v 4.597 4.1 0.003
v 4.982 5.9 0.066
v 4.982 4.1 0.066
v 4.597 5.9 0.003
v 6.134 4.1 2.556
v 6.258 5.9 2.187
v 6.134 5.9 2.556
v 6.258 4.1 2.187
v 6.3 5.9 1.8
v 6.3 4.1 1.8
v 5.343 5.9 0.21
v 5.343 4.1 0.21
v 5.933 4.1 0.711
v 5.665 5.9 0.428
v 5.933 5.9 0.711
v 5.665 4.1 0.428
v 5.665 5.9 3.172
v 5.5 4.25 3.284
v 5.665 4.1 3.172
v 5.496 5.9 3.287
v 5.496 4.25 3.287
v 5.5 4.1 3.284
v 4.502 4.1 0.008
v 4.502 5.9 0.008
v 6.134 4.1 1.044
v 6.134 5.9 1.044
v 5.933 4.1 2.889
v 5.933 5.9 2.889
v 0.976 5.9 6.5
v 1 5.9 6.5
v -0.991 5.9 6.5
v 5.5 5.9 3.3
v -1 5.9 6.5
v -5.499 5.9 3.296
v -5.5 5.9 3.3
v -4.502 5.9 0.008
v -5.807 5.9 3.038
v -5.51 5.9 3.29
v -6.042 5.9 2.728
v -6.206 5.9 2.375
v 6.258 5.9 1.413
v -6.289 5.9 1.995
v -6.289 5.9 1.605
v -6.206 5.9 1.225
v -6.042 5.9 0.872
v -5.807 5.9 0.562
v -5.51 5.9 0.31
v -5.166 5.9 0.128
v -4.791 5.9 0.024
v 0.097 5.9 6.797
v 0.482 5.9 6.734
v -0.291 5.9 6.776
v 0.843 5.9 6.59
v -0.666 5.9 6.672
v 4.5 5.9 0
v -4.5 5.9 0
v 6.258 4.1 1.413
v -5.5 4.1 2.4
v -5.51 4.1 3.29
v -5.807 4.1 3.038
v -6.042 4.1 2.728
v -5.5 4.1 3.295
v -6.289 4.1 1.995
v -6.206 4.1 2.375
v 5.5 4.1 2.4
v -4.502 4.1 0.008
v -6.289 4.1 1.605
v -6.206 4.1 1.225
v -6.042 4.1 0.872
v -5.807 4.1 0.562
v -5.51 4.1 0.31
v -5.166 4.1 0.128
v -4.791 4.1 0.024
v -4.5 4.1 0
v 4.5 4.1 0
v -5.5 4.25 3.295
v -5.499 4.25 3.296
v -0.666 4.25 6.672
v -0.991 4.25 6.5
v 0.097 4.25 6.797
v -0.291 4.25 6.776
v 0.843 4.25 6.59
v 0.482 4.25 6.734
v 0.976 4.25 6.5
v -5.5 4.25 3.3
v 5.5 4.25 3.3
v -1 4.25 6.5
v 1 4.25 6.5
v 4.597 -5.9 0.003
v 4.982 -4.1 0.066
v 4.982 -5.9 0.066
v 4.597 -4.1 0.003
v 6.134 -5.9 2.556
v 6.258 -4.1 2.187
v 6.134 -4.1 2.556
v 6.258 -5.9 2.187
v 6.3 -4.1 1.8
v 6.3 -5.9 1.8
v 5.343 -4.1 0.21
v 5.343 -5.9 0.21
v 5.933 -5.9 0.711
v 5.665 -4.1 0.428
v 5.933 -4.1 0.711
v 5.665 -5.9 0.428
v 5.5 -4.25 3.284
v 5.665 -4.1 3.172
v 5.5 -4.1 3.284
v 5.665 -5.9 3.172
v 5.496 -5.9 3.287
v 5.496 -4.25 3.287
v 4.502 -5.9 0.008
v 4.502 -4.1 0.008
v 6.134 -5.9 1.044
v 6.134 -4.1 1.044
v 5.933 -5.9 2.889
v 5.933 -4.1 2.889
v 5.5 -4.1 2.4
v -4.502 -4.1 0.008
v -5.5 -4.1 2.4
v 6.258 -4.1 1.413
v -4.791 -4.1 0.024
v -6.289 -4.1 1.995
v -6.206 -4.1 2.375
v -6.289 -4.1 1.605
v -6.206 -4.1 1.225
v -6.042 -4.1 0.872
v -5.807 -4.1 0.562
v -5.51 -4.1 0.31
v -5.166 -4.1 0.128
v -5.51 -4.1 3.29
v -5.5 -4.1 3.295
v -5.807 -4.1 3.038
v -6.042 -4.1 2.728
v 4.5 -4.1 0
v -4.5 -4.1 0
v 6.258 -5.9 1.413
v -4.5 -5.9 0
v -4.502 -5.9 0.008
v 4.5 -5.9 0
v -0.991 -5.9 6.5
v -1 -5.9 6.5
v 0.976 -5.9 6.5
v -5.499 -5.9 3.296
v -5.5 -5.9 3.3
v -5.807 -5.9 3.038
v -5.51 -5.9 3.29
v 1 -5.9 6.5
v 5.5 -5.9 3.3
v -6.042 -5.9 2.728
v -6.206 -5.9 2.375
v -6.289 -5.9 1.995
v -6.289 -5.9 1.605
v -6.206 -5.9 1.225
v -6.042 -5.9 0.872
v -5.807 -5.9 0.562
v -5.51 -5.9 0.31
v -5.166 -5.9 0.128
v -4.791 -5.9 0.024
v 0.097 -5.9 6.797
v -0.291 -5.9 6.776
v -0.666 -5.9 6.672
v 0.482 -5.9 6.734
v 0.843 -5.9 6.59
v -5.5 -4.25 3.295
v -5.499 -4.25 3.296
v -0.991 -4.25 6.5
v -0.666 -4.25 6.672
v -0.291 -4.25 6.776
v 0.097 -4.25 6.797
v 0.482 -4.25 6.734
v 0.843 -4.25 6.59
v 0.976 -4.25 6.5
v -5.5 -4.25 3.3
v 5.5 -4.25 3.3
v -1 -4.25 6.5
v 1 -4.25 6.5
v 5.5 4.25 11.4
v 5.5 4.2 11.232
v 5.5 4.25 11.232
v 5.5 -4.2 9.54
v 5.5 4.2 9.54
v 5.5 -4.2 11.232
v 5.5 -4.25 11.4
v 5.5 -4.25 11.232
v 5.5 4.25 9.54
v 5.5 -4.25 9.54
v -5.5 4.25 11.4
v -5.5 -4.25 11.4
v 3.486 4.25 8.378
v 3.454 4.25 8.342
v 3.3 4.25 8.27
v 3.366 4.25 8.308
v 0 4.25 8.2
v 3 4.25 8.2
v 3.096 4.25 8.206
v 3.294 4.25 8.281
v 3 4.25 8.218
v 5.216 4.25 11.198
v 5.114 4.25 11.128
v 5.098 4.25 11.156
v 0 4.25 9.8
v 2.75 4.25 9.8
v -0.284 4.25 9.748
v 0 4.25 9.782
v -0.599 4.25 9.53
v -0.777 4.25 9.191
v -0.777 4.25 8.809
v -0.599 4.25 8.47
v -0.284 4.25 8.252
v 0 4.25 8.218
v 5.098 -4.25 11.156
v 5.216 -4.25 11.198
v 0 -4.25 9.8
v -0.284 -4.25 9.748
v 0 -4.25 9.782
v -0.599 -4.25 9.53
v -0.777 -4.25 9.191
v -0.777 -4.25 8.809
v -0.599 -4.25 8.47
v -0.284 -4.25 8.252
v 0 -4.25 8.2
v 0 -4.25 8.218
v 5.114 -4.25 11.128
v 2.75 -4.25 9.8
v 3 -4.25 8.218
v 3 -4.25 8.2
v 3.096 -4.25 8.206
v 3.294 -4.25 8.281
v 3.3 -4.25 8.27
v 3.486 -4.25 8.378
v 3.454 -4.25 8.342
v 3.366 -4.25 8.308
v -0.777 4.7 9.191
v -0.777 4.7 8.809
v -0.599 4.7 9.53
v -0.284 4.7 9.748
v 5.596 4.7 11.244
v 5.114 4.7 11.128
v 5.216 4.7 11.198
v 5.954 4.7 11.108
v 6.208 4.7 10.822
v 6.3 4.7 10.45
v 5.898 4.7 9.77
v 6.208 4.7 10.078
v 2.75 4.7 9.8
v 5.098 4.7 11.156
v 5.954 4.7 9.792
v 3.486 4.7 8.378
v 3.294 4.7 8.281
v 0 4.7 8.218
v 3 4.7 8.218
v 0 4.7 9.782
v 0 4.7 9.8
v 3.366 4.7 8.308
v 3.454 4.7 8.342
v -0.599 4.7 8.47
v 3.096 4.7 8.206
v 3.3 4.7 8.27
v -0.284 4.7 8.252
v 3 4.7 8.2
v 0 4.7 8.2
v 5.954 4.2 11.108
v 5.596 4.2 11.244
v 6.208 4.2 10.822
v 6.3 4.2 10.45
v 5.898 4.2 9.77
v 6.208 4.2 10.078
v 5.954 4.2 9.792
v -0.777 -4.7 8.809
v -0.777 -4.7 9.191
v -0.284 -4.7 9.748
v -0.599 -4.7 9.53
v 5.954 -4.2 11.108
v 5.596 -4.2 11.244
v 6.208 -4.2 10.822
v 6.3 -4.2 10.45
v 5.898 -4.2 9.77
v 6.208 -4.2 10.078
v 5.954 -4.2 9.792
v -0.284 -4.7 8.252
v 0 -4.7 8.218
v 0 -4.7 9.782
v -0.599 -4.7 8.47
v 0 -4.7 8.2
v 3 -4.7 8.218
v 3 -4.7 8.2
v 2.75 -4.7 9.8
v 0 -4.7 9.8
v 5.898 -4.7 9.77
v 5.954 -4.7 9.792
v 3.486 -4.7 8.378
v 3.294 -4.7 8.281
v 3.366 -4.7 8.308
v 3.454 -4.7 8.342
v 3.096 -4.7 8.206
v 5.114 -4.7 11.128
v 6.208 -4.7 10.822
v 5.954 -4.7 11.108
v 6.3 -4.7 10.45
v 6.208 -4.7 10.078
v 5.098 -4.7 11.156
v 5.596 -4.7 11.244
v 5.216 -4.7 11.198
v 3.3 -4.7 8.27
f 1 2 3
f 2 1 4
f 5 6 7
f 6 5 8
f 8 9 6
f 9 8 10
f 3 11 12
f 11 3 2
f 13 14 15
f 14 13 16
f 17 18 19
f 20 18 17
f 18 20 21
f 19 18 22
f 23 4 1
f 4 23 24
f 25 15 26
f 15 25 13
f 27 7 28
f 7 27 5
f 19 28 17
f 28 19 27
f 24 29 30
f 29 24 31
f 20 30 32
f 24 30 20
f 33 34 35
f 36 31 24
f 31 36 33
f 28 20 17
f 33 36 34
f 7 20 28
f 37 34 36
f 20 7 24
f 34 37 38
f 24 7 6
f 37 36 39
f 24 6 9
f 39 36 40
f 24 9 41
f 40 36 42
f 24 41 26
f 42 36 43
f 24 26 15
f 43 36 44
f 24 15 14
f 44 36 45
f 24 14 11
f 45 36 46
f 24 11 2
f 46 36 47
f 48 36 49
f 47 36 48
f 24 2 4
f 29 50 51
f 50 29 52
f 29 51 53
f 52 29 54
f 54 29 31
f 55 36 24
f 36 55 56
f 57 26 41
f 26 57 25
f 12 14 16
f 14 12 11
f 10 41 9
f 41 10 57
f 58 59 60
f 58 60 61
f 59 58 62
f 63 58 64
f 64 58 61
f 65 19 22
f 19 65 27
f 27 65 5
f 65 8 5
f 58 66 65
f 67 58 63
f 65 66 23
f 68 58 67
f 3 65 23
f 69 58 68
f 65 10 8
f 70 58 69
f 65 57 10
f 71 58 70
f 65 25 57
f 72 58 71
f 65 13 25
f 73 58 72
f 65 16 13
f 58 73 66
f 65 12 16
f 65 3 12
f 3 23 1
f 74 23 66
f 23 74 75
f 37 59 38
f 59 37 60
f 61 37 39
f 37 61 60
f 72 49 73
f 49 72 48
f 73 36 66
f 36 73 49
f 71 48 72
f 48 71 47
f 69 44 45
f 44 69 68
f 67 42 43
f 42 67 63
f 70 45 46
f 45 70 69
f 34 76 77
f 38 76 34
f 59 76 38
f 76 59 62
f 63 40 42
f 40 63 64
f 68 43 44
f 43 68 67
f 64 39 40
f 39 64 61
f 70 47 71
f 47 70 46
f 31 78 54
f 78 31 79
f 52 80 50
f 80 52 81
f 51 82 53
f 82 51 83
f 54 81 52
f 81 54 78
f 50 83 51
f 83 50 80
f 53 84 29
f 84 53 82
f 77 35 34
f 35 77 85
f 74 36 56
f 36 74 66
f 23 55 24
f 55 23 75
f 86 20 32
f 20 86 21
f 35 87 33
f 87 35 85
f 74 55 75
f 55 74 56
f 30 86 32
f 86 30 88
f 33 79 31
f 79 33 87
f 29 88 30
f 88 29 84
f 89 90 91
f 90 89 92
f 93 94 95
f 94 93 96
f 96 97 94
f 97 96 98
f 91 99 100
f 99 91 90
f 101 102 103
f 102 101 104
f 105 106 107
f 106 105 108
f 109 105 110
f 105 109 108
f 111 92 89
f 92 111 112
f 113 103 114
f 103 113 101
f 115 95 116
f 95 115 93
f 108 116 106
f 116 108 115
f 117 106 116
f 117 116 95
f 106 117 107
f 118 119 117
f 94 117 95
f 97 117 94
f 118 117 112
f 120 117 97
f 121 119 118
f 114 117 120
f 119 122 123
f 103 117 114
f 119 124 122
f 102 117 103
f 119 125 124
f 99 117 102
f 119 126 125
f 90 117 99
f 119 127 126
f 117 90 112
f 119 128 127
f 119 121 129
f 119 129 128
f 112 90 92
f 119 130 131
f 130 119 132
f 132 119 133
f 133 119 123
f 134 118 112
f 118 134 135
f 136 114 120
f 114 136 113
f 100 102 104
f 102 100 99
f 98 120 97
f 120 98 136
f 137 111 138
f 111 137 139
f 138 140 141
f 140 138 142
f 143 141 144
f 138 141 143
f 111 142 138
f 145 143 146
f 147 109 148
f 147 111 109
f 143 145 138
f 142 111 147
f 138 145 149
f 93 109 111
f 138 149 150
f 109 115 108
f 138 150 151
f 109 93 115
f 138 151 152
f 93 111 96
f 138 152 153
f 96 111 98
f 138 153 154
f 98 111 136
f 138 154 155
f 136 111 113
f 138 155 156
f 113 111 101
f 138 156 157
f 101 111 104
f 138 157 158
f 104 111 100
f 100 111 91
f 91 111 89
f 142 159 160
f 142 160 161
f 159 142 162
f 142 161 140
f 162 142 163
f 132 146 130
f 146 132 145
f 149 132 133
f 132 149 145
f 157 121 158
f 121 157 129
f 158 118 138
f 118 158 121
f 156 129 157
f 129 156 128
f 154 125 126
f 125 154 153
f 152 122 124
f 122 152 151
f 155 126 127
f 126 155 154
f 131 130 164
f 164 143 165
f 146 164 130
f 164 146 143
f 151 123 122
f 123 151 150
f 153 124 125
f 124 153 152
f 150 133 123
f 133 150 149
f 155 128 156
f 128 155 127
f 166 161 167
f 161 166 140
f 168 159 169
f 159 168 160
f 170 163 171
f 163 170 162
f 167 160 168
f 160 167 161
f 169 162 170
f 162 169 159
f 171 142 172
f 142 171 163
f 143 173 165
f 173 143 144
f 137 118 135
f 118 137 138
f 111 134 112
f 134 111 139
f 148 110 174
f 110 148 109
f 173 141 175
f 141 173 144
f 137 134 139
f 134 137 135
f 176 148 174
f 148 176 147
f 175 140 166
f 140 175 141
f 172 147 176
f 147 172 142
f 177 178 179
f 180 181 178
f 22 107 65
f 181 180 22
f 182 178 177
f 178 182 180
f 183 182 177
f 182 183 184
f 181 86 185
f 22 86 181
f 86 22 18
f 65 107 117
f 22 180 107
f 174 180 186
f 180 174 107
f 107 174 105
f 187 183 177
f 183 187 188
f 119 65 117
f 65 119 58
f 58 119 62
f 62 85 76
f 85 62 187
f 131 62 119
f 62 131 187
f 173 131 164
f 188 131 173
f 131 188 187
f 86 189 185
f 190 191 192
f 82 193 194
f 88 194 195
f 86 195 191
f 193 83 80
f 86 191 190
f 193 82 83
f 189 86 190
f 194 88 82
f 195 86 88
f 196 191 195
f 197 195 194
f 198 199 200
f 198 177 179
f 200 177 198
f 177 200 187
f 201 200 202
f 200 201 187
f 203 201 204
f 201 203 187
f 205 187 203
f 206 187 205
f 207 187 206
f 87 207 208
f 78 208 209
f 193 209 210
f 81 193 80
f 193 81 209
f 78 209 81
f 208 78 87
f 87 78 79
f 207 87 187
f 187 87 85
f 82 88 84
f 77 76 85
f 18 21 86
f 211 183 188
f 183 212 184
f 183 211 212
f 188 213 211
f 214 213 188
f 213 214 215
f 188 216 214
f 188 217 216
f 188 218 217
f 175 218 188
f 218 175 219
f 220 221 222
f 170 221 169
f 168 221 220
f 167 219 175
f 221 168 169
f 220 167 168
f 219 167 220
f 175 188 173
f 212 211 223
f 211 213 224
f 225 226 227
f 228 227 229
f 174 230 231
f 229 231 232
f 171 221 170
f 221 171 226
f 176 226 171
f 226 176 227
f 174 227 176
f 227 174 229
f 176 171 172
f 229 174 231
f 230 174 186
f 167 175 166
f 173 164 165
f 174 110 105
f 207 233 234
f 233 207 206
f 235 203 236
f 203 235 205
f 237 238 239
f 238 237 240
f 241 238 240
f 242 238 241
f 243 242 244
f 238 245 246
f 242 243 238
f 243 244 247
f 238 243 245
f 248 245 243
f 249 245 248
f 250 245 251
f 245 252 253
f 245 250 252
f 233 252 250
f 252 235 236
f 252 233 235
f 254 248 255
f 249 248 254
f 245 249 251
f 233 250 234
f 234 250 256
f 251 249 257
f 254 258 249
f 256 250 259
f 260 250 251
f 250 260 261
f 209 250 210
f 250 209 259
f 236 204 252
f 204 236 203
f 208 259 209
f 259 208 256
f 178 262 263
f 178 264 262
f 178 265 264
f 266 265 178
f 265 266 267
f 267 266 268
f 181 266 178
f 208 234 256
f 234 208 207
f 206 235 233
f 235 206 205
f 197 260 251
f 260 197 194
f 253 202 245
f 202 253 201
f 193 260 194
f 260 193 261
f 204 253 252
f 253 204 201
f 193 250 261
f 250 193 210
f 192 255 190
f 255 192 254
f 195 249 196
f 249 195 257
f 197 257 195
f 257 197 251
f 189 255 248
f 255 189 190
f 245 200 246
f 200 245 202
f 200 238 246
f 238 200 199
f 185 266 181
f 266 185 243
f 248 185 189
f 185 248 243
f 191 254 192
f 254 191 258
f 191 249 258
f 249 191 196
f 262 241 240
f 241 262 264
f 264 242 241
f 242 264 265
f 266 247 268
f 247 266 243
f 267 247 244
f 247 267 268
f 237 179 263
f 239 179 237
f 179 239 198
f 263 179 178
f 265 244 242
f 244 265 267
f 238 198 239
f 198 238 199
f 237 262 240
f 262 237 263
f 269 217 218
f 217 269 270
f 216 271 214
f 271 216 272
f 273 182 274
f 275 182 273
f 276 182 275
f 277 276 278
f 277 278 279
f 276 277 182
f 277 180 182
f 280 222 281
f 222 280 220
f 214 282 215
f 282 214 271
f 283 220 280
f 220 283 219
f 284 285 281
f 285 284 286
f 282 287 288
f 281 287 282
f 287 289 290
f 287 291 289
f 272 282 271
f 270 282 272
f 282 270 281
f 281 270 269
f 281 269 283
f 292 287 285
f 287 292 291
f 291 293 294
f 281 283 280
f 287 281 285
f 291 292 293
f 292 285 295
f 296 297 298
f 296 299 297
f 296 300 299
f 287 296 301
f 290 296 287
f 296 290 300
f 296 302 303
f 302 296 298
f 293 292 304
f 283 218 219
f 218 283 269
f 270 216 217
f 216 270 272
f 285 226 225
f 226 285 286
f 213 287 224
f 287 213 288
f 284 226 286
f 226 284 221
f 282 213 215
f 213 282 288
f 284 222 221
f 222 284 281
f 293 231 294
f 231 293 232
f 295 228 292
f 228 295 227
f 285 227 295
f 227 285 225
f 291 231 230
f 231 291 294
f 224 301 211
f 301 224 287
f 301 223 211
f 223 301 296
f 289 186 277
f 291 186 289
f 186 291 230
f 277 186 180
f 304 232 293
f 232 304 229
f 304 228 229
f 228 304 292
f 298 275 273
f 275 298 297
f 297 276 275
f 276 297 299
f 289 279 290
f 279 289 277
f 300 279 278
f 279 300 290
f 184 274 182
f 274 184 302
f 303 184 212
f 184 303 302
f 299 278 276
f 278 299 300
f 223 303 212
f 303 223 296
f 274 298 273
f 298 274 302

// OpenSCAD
$fa = 1;
$fs = 0.4;

module wheel() {
rotate([90, 0, 0])
    translate([4.5, 1.8, -0.9])
    cylinder(h=1.8, r=1.8);

rotate([90, 0, 0])    
    translate([-4.5,1.8,-0.9])
    cylinder(h=1.8, r=1.8);
    
rotate([90, 0, 0])    
    translate([0,5,-0.9])
    cylinder(h=1.8, r=1.8);
    
path_pts = [
    [4.5, 0.9],
    [-4.5, 0.9],
    [-5.5, 4.2],
    [-1, 7.4],
    [1, 7.4],
    [5.5, 4.2]
];

path_pts_ = [
    [4.5, 0],
    [-4.5, 0],
    [-5.5, 3.3],
    [-1, 6.5],
    [1, 6.5],
    [5.5, 3.3]
];

translate([0,0.9,-0.9])
    rotate([90, 0, 0])
    linear_extrude(height=1.8)
    polygon(path_pts);
}


module body(){
translate([0, 5, 0])
    wheel();
translate([0, -5, 0])
    wheel();
translate([0,0,6.9])
cube([11,8.5,9], center=true);
}


module hand(){
translate([0, 0.5, 0])
rotate([90,0,0])
    cylinder(h=0.5, r=0.8);

translate([0, 0, -0.8])
    cube([3,0.5,1.6]);

translate([3, 0.5, 0])
    rotate([90,0,0])
    cylinder(h=0.5, r=0.8);

translate([3.3, 0, -0.73])
    rotate([0,-30,0])
    cube([3,0.5,1.6]);

translate([5.5, 0.5, 1.45])
    rotate([90,0,0])
    cylinder(h=0.5, r=0.8);
}

body();

translate([0, 4.2 ,9])
color("blue"){
hand();
}

translate([0, -4.7 ,9])
color("blue"){
hand();
}
